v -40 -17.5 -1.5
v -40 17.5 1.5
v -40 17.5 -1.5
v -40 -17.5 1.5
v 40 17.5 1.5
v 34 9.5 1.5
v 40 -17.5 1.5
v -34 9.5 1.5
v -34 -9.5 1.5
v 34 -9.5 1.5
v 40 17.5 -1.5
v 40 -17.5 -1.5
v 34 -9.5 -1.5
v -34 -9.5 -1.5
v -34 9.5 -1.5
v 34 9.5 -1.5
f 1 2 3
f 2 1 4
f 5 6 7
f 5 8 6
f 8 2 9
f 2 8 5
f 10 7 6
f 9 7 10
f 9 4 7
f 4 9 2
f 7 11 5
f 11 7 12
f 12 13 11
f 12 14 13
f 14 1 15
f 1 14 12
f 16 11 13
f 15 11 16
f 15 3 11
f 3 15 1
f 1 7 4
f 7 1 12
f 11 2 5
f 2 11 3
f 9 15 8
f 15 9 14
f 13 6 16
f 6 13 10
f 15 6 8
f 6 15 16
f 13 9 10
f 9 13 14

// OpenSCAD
difference() {

cube([80,35,3], center=true);
cube([68,19,4], center=true);    
};
